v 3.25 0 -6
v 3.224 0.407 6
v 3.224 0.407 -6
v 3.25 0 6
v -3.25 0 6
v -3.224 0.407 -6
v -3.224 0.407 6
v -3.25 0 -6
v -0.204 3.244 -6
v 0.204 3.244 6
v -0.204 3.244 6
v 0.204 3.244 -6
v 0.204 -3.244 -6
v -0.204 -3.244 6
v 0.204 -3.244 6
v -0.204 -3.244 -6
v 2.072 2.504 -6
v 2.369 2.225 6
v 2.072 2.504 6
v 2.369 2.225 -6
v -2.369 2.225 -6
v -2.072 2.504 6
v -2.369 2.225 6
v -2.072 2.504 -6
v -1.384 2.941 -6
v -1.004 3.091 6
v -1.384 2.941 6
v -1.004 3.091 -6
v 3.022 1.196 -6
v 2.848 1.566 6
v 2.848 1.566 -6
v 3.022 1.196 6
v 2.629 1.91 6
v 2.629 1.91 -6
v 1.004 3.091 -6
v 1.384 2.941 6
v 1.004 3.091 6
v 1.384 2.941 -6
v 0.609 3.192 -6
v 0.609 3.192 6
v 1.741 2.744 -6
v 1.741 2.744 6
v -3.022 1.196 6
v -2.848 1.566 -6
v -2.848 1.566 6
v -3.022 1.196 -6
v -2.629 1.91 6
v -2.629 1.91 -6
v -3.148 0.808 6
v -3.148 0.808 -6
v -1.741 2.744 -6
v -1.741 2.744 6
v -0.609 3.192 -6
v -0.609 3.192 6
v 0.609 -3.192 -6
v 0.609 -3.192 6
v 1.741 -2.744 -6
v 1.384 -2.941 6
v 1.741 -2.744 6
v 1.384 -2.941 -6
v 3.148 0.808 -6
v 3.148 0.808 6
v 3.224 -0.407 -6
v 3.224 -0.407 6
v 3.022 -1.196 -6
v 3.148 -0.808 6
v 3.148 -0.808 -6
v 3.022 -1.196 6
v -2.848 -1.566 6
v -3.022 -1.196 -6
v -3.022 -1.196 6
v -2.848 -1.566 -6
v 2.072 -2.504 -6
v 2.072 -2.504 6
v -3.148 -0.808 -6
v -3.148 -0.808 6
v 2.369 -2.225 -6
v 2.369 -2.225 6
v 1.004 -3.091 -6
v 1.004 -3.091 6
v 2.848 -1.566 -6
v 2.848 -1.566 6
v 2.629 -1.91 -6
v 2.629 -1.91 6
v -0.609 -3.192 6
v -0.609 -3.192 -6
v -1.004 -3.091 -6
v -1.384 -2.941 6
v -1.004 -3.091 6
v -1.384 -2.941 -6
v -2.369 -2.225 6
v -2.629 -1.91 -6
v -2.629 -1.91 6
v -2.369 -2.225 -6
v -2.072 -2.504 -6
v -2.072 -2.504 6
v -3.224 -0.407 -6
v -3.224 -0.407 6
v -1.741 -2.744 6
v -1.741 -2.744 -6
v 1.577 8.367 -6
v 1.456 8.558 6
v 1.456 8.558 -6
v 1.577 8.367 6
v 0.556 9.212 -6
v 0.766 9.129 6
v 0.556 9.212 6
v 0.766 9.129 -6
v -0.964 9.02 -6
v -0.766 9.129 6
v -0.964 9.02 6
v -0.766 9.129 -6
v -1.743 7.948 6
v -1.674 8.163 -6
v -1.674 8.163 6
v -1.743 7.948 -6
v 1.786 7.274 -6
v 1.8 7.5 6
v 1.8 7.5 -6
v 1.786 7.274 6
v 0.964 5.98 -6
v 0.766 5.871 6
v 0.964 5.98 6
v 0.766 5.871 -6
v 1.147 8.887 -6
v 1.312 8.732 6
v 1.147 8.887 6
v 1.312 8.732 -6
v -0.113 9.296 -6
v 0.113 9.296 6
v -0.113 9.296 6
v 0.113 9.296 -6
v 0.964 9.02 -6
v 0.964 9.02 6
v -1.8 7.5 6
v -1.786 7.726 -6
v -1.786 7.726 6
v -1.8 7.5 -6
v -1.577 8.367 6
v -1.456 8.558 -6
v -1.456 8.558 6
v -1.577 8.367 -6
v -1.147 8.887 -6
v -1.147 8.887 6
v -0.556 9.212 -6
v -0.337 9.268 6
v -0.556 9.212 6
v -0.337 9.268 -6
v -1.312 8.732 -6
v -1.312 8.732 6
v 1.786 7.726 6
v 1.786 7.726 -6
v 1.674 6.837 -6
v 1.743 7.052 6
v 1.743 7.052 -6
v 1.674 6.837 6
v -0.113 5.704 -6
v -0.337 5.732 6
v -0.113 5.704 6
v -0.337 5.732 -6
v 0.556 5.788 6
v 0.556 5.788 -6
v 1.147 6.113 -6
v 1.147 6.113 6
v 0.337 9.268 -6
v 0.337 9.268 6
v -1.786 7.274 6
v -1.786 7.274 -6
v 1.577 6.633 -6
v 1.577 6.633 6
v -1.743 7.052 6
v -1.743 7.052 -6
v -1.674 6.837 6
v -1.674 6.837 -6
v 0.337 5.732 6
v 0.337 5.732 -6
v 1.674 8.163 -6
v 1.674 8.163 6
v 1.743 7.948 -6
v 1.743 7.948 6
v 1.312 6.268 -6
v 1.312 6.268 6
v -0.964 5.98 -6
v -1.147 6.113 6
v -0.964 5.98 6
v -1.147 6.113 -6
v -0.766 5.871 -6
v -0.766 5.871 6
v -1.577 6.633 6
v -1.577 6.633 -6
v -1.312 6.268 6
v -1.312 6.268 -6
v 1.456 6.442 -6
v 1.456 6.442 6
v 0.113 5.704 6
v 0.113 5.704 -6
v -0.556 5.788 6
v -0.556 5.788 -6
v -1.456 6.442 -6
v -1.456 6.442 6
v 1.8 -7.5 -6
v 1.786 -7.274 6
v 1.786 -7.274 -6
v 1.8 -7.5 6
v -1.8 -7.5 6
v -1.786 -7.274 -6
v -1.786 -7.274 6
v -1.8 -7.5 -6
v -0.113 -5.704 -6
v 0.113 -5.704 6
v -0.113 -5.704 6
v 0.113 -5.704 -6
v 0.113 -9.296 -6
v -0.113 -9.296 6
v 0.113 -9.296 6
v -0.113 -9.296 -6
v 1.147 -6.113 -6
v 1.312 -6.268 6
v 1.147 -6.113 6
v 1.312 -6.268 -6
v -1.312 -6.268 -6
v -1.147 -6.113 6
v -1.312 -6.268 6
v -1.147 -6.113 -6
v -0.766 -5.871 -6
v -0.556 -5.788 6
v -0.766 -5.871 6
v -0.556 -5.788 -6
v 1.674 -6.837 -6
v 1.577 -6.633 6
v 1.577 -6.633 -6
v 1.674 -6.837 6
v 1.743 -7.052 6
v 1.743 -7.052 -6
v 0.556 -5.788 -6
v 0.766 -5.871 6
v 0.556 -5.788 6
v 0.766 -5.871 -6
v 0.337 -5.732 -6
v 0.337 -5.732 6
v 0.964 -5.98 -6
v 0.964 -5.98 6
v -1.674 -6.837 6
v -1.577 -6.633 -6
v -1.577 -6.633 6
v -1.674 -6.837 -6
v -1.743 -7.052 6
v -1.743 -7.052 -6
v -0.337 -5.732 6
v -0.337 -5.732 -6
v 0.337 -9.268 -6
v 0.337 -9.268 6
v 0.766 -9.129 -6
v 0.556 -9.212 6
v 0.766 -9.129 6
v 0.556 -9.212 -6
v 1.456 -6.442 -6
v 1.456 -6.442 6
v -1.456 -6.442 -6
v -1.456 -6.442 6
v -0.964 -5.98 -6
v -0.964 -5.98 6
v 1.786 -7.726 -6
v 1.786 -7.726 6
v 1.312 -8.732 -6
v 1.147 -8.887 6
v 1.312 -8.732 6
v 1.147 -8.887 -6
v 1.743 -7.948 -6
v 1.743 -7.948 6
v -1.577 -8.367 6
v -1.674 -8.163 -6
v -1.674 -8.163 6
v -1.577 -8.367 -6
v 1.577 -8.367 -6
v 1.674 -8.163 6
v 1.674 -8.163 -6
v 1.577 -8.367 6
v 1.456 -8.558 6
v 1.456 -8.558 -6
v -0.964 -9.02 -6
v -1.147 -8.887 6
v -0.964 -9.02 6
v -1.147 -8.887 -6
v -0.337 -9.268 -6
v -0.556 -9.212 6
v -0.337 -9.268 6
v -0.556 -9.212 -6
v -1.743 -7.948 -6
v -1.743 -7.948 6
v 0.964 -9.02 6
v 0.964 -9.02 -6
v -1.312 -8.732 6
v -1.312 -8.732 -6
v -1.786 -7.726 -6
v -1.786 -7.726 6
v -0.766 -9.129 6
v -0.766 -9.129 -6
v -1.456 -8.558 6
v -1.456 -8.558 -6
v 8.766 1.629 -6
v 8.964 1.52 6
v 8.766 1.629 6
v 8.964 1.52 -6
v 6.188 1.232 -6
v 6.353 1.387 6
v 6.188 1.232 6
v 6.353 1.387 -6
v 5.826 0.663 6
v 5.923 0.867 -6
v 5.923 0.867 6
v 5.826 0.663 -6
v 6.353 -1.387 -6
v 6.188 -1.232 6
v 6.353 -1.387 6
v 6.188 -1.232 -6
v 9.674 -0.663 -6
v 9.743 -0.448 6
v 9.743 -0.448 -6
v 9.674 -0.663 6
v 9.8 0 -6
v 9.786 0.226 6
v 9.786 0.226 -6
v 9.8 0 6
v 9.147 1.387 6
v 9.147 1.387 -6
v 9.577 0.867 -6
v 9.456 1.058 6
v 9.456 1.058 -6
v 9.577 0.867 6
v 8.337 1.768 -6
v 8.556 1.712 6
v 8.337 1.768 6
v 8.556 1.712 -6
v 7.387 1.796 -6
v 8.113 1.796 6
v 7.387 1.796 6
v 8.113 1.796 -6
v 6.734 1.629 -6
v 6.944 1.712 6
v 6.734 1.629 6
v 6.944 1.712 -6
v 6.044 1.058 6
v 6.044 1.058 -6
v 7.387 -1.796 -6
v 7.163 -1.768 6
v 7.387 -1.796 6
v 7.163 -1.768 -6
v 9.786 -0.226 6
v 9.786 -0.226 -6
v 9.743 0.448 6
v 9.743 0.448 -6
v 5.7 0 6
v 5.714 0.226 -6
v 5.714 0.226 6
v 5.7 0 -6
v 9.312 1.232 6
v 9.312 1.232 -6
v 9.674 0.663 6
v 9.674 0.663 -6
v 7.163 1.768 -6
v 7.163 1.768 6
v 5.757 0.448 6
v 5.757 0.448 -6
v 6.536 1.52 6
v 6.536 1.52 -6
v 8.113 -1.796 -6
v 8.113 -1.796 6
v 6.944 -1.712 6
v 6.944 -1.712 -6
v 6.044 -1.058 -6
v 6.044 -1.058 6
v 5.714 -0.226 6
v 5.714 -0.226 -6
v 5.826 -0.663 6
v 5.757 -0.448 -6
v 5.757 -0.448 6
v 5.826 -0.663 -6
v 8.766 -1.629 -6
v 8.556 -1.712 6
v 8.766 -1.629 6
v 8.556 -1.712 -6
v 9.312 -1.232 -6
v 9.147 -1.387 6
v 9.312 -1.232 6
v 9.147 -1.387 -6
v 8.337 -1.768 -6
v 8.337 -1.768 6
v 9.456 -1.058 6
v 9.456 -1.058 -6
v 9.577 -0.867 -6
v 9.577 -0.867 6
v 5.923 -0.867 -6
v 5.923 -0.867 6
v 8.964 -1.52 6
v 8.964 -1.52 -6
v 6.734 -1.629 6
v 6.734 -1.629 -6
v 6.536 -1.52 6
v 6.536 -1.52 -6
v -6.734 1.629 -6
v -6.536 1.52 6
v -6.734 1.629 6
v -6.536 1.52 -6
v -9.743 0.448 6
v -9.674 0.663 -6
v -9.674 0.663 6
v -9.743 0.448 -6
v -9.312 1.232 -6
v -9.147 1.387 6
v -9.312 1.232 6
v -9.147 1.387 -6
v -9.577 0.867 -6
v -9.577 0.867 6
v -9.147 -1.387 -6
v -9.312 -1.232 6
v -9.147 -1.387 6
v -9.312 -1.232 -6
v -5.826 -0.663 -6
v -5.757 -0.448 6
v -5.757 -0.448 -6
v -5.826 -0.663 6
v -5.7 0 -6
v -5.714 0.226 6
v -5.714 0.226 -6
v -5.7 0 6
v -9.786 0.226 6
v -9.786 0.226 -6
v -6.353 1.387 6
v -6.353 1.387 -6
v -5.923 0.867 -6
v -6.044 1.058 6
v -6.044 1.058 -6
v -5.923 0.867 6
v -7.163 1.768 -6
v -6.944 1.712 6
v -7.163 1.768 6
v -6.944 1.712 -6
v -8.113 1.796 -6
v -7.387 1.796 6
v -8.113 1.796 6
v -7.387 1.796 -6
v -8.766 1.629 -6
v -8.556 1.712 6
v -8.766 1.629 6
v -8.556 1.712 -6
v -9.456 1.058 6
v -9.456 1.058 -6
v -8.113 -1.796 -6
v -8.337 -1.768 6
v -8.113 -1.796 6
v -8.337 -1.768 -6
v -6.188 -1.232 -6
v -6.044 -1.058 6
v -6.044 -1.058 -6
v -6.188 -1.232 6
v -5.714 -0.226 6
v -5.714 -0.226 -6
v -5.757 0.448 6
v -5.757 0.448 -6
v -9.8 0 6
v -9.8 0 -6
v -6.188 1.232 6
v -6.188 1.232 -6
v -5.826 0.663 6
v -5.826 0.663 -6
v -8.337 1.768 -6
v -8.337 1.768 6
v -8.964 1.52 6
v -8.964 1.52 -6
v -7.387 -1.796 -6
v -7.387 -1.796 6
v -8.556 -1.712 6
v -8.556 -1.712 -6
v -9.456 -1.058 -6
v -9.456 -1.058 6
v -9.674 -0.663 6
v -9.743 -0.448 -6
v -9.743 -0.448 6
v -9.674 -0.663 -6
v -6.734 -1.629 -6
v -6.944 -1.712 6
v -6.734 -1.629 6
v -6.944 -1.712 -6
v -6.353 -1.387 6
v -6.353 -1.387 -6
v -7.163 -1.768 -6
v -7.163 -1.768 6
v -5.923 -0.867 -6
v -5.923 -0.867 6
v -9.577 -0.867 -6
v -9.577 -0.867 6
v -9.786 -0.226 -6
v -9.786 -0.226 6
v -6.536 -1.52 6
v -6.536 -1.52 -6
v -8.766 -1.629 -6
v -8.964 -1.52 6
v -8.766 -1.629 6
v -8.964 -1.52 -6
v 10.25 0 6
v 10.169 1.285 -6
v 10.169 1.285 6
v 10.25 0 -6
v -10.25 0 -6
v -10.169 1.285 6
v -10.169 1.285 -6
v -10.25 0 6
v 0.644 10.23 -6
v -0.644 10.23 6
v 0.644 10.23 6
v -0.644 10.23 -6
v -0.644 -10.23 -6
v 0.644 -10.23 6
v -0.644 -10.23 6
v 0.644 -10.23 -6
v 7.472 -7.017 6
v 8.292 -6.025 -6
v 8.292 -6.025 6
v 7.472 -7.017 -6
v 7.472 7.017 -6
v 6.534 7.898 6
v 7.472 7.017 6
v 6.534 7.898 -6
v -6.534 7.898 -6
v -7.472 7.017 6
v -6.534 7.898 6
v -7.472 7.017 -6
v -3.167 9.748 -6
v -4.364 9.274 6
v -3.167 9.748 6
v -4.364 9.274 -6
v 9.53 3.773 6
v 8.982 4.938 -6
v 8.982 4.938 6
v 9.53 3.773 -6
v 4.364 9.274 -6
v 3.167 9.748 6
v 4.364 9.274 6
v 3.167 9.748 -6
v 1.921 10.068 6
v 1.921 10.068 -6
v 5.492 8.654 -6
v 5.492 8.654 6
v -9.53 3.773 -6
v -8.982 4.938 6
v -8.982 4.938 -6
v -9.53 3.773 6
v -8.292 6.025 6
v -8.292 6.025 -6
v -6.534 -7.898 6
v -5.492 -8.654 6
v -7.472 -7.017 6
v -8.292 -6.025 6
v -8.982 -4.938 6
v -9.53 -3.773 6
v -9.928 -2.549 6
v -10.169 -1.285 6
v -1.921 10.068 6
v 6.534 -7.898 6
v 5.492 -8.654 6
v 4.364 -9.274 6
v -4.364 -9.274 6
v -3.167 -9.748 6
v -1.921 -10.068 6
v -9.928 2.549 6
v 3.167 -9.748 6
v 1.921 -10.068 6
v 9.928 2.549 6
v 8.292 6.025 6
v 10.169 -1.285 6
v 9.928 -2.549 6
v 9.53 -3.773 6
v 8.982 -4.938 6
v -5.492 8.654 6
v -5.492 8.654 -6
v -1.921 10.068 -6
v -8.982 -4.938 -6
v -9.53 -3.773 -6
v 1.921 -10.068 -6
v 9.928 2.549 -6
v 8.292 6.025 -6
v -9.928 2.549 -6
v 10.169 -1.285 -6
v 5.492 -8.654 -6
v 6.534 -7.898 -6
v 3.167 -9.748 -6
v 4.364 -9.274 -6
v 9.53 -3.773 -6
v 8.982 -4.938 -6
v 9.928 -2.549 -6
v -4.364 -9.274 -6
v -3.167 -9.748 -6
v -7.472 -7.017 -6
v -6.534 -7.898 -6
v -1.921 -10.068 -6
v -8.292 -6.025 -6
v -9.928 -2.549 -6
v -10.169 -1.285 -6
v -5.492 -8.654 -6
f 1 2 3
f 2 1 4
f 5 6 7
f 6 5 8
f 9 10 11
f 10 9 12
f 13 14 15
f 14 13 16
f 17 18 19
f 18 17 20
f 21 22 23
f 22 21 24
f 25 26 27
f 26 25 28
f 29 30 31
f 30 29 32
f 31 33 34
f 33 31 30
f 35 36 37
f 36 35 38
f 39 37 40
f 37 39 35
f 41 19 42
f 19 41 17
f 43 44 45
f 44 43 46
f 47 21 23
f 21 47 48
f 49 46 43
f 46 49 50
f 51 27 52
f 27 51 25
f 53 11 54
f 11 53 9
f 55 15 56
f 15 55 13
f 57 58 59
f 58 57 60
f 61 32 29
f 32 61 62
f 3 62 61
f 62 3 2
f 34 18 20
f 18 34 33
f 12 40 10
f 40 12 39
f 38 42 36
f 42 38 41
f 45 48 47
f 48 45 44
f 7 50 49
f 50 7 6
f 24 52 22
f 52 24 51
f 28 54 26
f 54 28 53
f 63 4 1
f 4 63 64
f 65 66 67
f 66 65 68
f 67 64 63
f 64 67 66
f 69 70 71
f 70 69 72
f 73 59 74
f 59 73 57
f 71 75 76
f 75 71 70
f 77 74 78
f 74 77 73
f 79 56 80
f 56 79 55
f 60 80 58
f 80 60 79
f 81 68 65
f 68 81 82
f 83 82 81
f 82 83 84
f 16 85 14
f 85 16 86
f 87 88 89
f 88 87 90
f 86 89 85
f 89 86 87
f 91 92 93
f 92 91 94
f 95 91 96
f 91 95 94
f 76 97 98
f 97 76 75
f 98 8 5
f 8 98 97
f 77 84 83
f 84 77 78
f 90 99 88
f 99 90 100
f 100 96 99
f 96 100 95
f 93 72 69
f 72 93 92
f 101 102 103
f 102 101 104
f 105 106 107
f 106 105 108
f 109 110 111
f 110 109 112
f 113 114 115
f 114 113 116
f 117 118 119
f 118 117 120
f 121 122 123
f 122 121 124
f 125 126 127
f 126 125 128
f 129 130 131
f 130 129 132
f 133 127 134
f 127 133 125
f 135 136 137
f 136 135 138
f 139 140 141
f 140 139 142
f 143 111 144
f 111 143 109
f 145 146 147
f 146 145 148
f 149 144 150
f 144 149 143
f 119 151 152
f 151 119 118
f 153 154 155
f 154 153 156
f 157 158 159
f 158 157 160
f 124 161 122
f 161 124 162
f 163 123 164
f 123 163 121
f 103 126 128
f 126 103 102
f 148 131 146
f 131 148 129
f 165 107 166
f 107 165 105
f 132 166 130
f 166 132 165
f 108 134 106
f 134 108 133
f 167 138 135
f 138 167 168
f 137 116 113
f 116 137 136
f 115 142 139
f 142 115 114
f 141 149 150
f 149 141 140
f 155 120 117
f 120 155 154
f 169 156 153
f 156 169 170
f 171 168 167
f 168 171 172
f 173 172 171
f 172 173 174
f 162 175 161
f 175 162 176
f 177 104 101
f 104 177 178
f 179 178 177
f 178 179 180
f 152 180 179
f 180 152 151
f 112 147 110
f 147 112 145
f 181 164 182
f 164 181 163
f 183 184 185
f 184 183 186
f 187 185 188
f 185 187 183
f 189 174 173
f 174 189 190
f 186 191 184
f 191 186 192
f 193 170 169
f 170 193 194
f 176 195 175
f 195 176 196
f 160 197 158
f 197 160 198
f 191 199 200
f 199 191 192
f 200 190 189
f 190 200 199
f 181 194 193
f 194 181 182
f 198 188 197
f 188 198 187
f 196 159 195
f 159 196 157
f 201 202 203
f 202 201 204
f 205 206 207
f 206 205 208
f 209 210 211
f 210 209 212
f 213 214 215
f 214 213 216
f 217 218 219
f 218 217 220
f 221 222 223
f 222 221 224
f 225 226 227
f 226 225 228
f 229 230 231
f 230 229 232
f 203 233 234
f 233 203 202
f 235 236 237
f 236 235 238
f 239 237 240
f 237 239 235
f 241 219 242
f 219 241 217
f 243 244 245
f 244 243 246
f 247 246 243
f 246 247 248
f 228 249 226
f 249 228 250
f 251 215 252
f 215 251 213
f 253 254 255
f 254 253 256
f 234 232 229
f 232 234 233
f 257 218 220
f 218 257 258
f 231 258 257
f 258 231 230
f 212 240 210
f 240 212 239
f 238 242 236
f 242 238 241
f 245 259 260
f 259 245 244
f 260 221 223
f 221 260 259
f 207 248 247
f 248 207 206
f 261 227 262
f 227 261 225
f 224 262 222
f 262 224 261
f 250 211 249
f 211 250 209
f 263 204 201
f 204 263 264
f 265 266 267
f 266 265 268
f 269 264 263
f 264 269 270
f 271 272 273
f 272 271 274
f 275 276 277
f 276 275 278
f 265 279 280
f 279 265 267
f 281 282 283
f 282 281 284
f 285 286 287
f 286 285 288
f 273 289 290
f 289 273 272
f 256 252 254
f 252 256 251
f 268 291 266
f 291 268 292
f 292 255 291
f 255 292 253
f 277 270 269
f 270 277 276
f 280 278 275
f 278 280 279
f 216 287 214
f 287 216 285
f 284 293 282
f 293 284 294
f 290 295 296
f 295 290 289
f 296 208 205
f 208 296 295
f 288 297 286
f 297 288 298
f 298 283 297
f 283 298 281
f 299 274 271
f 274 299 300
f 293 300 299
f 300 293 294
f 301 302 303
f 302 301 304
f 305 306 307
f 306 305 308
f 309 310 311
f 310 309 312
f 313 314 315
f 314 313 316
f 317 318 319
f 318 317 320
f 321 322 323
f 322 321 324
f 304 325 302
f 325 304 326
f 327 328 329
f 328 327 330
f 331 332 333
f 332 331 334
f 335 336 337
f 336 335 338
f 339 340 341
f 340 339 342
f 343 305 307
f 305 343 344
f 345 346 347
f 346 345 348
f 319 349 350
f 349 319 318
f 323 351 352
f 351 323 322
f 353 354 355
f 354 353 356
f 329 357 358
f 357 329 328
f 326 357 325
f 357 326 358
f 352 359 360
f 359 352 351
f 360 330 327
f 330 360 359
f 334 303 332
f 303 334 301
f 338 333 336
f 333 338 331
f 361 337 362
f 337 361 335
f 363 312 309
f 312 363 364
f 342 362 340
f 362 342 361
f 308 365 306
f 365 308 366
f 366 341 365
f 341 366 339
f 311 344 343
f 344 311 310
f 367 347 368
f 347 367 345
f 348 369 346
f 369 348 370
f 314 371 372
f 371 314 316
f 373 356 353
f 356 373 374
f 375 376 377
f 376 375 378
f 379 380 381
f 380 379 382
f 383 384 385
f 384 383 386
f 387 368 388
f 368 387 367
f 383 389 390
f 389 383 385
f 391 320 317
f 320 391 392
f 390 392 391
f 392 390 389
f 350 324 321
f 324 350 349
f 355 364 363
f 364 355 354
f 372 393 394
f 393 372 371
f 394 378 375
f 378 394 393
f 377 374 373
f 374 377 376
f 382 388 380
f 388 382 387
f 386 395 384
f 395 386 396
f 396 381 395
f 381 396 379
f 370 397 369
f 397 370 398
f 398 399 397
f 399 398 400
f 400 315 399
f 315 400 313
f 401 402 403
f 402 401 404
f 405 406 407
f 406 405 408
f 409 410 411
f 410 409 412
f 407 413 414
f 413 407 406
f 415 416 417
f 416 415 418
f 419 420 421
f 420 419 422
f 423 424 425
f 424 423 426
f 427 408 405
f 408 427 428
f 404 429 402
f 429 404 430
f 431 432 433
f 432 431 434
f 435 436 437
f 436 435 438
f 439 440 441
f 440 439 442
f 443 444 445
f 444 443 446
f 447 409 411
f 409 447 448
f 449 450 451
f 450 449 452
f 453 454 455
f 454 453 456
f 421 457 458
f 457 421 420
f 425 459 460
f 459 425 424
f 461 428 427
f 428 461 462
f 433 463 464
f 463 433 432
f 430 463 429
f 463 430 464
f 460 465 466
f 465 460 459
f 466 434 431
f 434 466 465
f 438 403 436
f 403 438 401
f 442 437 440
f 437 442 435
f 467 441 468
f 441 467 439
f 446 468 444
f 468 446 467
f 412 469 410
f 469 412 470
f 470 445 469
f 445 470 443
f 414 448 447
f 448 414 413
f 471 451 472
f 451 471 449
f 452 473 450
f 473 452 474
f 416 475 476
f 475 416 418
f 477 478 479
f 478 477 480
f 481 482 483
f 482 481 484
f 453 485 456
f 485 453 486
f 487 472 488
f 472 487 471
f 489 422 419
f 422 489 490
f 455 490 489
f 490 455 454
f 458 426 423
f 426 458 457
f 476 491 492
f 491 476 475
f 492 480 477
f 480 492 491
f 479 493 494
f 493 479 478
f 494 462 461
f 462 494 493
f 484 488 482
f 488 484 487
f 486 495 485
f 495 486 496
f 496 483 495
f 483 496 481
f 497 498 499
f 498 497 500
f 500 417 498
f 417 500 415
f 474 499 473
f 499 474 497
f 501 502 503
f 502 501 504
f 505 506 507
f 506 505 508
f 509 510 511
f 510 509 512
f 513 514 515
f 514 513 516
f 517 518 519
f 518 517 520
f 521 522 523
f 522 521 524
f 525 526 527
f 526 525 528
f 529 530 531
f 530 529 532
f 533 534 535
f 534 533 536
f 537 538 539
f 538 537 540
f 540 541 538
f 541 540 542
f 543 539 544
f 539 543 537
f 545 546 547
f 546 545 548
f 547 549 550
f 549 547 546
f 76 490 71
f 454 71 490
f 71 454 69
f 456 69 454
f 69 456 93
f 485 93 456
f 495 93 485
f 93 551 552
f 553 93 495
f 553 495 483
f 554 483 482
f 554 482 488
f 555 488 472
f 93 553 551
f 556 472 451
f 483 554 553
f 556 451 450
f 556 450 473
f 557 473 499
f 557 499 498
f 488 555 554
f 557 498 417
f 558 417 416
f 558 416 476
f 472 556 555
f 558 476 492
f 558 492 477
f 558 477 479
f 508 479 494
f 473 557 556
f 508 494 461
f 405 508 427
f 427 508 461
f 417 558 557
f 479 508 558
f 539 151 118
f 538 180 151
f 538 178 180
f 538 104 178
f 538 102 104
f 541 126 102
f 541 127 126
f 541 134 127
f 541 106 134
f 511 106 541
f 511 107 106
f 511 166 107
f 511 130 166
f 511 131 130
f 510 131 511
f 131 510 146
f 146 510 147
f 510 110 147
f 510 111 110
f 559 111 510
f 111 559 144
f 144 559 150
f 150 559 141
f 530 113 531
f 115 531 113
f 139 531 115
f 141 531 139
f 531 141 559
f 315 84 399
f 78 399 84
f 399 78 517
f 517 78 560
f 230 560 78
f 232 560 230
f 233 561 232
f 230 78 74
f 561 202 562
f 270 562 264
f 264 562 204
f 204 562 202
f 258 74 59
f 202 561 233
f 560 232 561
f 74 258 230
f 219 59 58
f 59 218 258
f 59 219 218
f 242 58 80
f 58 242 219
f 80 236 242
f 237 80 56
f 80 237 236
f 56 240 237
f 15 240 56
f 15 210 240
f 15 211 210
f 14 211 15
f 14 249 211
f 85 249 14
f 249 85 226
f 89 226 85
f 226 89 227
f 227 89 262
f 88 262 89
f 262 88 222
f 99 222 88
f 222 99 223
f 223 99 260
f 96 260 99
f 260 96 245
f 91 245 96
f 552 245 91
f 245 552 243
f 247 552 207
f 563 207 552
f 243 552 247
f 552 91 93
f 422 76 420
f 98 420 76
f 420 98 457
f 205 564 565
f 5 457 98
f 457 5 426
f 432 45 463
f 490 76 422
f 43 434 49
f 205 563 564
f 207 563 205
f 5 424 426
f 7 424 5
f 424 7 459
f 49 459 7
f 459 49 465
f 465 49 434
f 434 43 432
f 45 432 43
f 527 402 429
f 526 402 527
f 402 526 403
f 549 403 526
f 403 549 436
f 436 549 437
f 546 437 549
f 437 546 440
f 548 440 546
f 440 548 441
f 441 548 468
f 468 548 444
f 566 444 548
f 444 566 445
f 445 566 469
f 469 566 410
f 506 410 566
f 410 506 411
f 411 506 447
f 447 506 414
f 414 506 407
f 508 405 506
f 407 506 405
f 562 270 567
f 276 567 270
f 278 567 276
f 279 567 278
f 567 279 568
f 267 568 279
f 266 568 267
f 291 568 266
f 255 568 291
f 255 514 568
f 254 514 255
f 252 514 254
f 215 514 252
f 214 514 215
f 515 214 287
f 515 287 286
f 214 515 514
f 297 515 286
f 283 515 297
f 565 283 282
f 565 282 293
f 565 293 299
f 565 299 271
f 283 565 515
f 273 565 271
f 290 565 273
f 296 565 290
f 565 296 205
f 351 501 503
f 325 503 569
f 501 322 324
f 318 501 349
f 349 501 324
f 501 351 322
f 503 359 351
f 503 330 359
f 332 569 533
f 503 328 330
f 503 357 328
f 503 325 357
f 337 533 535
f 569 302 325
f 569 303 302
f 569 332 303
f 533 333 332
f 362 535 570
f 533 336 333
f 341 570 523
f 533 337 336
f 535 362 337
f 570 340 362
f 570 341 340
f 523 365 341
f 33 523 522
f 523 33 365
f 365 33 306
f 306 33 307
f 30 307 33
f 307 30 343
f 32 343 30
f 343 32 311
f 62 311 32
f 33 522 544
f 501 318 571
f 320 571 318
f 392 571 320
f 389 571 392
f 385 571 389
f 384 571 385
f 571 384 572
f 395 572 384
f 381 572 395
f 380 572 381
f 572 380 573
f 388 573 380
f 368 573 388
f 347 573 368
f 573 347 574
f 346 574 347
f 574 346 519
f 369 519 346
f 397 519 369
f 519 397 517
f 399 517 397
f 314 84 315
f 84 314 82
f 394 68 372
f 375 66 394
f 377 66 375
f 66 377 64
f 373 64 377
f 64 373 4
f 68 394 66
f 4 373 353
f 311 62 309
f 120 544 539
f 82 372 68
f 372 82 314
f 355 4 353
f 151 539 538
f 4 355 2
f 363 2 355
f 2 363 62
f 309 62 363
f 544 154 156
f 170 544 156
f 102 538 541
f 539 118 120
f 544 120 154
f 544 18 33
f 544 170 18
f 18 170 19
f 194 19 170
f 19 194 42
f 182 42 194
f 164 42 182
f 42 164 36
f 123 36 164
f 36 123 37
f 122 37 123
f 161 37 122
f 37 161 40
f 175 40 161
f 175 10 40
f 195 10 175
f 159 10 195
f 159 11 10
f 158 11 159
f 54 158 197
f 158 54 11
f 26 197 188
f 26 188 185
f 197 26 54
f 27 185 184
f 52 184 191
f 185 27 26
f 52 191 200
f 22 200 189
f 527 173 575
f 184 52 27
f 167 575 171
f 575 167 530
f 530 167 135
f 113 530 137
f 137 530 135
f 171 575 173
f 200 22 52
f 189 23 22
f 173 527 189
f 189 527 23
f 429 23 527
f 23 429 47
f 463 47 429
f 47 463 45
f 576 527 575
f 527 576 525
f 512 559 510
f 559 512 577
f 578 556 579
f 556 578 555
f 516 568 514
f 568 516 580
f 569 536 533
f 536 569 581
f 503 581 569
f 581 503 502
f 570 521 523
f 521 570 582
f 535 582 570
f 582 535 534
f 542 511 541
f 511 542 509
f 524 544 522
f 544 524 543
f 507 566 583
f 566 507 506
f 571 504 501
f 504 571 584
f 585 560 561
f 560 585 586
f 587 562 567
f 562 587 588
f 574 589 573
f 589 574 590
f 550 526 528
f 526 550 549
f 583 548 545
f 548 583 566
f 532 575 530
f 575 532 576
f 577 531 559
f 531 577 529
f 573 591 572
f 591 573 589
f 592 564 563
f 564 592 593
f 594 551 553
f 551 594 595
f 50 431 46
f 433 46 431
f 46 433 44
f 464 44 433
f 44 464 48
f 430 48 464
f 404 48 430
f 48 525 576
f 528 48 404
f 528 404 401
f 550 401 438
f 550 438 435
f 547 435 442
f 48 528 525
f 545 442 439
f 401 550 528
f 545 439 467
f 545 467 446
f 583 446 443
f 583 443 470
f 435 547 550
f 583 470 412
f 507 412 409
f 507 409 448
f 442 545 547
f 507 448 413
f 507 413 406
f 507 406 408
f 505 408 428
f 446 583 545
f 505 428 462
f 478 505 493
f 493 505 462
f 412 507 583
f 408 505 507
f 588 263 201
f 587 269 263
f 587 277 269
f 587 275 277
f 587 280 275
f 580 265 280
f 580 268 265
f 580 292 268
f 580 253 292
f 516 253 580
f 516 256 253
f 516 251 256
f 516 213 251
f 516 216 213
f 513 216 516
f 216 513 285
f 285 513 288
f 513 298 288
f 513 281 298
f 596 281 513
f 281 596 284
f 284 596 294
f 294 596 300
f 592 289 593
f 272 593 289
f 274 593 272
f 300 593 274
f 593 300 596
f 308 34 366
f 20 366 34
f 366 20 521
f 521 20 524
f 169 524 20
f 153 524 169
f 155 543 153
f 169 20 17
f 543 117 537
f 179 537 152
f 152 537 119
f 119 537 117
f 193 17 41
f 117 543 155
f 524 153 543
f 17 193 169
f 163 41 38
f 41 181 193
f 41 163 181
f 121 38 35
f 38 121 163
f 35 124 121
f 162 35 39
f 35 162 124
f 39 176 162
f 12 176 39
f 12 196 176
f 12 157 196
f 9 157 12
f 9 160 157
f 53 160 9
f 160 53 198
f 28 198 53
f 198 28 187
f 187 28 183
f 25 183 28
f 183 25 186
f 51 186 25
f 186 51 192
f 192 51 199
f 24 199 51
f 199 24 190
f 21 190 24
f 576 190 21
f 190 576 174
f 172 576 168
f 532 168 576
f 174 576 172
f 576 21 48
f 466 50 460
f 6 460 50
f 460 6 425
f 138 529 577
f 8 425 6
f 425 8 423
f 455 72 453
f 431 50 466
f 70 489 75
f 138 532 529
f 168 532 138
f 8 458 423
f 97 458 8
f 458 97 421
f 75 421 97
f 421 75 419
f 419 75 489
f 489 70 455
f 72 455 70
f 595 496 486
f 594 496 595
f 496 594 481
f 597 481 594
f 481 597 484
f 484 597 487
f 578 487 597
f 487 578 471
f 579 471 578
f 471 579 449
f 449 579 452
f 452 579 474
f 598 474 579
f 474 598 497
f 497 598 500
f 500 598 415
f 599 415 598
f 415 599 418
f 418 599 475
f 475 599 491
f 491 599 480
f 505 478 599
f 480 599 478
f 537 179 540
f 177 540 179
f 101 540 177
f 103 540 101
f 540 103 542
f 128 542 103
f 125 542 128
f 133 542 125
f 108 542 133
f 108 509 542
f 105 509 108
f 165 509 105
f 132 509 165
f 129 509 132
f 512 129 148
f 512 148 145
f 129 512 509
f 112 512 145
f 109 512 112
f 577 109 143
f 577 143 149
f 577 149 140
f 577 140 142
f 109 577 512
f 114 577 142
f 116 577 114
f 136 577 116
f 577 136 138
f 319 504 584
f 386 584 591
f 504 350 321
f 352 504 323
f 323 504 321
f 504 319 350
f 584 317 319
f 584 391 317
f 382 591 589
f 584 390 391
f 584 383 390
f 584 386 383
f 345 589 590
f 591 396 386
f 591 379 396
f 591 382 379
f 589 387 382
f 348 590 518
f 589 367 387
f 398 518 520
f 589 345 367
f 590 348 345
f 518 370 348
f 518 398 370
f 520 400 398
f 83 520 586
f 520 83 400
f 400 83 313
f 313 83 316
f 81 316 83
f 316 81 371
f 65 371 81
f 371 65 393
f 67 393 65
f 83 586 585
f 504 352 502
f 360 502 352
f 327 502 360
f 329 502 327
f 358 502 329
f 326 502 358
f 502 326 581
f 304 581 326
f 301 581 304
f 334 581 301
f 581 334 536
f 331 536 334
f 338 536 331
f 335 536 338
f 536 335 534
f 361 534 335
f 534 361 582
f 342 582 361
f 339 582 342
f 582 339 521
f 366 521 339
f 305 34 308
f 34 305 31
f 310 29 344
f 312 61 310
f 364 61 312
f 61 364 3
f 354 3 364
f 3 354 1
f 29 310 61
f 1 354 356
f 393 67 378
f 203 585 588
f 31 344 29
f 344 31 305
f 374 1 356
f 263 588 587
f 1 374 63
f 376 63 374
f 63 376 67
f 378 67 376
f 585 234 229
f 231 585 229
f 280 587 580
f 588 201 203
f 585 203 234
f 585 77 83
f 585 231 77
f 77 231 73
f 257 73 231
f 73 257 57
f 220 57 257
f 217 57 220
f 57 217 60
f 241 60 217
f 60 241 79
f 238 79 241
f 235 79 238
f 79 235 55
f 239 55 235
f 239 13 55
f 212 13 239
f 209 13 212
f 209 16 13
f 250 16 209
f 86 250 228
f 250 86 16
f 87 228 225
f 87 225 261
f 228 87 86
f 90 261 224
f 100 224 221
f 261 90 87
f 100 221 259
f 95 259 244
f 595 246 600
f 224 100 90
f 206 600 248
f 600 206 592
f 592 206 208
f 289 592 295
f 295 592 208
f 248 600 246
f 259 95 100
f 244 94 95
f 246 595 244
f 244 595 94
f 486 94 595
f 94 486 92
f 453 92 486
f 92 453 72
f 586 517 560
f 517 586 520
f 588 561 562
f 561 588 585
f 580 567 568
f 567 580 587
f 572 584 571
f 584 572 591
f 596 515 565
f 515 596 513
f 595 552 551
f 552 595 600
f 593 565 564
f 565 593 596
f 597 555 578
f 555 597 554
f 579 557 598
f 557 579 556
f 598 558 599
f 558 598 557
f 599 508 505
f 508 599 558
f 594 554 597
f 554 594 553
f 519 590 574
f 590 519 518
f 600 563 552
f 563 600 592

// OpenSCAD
$fn = 50;


difference() {
	union() {
		translate(v = [0, 0, -6.0000000000]) {
			rotate(a = [0, 0, 0]) {
				cylinder(h = 12, r = 10.2500000000);
			}
		}
	}
	union() {
		translate(v = [0, 0, -125.0000000000]) {
			rotate(a = [0, 0, 0]) {
				cylinder(h = 250, r = 3.2500000000);
			}
		}
		translate(v = [0, 7.5000000000, -125.0000000000]) {
			rotate(a = [0, 0, 0]) {
				cylinder(h = 250, r = 1.8000000000);
			}
		}
		translate(v = [0, -7.5000000000, -125.0000000000]) {
			rotate(a = [0, 0, 0]) {
				cylinder(h = 250, r = 1.8000000000);
			}
		}
		translate(v = [7.7500000000, 0, -125.0000000000]) {
			rotate(a = [0, 0, 0]) {
				hull() {
					translate(v = [0.2500000000, 0, 0]) {
						rotate(a = [0, 0, 0]) {
							translate(v = [0, 0, 0]) {
								rotate(a = [0, 0, 0]) {
									cylinder(h = 250, r = 1.8000000000);
								}
							}
						}
					}
					translate(v = [-0.2500000000, 0, 0]) {
						rotate(a = [0, 0, 0]) {
							translate(v = [0, 0, 0]) {
								rotate(a = [0, 0, 0]) {
									cylinder(h = 250, r = 1.8000000000);
								}
							}
						}
					}
				}
			}
		}
		translate(v = [-7.7500000000, 0, -125.0000000000]) {
			rotate(a = [0, 0, 0]) {
				hull() {
					translate(v = [0.2500000000, 0, 0]) {
						rotate(a = [0, 0, 0]) {
							translate(v = [0, 0, 0]) {
								rotate(a = [0, 0, 0]) {
									cylinder(h = 250, r = 1.8000000000);
								}
							}
						}
					}
					translate(v = [-0.2500000000, 0, 0]) {
						rotate(a = [0, 0, 0]) {
							translate(v = [0, 0, 0]) {
								rotate(a = [0, 0, 0]) {
									cylinder(h = 250, r = 1.8000000000);
								}
							}
						}
					}
				}
			}
		}
	}
}
